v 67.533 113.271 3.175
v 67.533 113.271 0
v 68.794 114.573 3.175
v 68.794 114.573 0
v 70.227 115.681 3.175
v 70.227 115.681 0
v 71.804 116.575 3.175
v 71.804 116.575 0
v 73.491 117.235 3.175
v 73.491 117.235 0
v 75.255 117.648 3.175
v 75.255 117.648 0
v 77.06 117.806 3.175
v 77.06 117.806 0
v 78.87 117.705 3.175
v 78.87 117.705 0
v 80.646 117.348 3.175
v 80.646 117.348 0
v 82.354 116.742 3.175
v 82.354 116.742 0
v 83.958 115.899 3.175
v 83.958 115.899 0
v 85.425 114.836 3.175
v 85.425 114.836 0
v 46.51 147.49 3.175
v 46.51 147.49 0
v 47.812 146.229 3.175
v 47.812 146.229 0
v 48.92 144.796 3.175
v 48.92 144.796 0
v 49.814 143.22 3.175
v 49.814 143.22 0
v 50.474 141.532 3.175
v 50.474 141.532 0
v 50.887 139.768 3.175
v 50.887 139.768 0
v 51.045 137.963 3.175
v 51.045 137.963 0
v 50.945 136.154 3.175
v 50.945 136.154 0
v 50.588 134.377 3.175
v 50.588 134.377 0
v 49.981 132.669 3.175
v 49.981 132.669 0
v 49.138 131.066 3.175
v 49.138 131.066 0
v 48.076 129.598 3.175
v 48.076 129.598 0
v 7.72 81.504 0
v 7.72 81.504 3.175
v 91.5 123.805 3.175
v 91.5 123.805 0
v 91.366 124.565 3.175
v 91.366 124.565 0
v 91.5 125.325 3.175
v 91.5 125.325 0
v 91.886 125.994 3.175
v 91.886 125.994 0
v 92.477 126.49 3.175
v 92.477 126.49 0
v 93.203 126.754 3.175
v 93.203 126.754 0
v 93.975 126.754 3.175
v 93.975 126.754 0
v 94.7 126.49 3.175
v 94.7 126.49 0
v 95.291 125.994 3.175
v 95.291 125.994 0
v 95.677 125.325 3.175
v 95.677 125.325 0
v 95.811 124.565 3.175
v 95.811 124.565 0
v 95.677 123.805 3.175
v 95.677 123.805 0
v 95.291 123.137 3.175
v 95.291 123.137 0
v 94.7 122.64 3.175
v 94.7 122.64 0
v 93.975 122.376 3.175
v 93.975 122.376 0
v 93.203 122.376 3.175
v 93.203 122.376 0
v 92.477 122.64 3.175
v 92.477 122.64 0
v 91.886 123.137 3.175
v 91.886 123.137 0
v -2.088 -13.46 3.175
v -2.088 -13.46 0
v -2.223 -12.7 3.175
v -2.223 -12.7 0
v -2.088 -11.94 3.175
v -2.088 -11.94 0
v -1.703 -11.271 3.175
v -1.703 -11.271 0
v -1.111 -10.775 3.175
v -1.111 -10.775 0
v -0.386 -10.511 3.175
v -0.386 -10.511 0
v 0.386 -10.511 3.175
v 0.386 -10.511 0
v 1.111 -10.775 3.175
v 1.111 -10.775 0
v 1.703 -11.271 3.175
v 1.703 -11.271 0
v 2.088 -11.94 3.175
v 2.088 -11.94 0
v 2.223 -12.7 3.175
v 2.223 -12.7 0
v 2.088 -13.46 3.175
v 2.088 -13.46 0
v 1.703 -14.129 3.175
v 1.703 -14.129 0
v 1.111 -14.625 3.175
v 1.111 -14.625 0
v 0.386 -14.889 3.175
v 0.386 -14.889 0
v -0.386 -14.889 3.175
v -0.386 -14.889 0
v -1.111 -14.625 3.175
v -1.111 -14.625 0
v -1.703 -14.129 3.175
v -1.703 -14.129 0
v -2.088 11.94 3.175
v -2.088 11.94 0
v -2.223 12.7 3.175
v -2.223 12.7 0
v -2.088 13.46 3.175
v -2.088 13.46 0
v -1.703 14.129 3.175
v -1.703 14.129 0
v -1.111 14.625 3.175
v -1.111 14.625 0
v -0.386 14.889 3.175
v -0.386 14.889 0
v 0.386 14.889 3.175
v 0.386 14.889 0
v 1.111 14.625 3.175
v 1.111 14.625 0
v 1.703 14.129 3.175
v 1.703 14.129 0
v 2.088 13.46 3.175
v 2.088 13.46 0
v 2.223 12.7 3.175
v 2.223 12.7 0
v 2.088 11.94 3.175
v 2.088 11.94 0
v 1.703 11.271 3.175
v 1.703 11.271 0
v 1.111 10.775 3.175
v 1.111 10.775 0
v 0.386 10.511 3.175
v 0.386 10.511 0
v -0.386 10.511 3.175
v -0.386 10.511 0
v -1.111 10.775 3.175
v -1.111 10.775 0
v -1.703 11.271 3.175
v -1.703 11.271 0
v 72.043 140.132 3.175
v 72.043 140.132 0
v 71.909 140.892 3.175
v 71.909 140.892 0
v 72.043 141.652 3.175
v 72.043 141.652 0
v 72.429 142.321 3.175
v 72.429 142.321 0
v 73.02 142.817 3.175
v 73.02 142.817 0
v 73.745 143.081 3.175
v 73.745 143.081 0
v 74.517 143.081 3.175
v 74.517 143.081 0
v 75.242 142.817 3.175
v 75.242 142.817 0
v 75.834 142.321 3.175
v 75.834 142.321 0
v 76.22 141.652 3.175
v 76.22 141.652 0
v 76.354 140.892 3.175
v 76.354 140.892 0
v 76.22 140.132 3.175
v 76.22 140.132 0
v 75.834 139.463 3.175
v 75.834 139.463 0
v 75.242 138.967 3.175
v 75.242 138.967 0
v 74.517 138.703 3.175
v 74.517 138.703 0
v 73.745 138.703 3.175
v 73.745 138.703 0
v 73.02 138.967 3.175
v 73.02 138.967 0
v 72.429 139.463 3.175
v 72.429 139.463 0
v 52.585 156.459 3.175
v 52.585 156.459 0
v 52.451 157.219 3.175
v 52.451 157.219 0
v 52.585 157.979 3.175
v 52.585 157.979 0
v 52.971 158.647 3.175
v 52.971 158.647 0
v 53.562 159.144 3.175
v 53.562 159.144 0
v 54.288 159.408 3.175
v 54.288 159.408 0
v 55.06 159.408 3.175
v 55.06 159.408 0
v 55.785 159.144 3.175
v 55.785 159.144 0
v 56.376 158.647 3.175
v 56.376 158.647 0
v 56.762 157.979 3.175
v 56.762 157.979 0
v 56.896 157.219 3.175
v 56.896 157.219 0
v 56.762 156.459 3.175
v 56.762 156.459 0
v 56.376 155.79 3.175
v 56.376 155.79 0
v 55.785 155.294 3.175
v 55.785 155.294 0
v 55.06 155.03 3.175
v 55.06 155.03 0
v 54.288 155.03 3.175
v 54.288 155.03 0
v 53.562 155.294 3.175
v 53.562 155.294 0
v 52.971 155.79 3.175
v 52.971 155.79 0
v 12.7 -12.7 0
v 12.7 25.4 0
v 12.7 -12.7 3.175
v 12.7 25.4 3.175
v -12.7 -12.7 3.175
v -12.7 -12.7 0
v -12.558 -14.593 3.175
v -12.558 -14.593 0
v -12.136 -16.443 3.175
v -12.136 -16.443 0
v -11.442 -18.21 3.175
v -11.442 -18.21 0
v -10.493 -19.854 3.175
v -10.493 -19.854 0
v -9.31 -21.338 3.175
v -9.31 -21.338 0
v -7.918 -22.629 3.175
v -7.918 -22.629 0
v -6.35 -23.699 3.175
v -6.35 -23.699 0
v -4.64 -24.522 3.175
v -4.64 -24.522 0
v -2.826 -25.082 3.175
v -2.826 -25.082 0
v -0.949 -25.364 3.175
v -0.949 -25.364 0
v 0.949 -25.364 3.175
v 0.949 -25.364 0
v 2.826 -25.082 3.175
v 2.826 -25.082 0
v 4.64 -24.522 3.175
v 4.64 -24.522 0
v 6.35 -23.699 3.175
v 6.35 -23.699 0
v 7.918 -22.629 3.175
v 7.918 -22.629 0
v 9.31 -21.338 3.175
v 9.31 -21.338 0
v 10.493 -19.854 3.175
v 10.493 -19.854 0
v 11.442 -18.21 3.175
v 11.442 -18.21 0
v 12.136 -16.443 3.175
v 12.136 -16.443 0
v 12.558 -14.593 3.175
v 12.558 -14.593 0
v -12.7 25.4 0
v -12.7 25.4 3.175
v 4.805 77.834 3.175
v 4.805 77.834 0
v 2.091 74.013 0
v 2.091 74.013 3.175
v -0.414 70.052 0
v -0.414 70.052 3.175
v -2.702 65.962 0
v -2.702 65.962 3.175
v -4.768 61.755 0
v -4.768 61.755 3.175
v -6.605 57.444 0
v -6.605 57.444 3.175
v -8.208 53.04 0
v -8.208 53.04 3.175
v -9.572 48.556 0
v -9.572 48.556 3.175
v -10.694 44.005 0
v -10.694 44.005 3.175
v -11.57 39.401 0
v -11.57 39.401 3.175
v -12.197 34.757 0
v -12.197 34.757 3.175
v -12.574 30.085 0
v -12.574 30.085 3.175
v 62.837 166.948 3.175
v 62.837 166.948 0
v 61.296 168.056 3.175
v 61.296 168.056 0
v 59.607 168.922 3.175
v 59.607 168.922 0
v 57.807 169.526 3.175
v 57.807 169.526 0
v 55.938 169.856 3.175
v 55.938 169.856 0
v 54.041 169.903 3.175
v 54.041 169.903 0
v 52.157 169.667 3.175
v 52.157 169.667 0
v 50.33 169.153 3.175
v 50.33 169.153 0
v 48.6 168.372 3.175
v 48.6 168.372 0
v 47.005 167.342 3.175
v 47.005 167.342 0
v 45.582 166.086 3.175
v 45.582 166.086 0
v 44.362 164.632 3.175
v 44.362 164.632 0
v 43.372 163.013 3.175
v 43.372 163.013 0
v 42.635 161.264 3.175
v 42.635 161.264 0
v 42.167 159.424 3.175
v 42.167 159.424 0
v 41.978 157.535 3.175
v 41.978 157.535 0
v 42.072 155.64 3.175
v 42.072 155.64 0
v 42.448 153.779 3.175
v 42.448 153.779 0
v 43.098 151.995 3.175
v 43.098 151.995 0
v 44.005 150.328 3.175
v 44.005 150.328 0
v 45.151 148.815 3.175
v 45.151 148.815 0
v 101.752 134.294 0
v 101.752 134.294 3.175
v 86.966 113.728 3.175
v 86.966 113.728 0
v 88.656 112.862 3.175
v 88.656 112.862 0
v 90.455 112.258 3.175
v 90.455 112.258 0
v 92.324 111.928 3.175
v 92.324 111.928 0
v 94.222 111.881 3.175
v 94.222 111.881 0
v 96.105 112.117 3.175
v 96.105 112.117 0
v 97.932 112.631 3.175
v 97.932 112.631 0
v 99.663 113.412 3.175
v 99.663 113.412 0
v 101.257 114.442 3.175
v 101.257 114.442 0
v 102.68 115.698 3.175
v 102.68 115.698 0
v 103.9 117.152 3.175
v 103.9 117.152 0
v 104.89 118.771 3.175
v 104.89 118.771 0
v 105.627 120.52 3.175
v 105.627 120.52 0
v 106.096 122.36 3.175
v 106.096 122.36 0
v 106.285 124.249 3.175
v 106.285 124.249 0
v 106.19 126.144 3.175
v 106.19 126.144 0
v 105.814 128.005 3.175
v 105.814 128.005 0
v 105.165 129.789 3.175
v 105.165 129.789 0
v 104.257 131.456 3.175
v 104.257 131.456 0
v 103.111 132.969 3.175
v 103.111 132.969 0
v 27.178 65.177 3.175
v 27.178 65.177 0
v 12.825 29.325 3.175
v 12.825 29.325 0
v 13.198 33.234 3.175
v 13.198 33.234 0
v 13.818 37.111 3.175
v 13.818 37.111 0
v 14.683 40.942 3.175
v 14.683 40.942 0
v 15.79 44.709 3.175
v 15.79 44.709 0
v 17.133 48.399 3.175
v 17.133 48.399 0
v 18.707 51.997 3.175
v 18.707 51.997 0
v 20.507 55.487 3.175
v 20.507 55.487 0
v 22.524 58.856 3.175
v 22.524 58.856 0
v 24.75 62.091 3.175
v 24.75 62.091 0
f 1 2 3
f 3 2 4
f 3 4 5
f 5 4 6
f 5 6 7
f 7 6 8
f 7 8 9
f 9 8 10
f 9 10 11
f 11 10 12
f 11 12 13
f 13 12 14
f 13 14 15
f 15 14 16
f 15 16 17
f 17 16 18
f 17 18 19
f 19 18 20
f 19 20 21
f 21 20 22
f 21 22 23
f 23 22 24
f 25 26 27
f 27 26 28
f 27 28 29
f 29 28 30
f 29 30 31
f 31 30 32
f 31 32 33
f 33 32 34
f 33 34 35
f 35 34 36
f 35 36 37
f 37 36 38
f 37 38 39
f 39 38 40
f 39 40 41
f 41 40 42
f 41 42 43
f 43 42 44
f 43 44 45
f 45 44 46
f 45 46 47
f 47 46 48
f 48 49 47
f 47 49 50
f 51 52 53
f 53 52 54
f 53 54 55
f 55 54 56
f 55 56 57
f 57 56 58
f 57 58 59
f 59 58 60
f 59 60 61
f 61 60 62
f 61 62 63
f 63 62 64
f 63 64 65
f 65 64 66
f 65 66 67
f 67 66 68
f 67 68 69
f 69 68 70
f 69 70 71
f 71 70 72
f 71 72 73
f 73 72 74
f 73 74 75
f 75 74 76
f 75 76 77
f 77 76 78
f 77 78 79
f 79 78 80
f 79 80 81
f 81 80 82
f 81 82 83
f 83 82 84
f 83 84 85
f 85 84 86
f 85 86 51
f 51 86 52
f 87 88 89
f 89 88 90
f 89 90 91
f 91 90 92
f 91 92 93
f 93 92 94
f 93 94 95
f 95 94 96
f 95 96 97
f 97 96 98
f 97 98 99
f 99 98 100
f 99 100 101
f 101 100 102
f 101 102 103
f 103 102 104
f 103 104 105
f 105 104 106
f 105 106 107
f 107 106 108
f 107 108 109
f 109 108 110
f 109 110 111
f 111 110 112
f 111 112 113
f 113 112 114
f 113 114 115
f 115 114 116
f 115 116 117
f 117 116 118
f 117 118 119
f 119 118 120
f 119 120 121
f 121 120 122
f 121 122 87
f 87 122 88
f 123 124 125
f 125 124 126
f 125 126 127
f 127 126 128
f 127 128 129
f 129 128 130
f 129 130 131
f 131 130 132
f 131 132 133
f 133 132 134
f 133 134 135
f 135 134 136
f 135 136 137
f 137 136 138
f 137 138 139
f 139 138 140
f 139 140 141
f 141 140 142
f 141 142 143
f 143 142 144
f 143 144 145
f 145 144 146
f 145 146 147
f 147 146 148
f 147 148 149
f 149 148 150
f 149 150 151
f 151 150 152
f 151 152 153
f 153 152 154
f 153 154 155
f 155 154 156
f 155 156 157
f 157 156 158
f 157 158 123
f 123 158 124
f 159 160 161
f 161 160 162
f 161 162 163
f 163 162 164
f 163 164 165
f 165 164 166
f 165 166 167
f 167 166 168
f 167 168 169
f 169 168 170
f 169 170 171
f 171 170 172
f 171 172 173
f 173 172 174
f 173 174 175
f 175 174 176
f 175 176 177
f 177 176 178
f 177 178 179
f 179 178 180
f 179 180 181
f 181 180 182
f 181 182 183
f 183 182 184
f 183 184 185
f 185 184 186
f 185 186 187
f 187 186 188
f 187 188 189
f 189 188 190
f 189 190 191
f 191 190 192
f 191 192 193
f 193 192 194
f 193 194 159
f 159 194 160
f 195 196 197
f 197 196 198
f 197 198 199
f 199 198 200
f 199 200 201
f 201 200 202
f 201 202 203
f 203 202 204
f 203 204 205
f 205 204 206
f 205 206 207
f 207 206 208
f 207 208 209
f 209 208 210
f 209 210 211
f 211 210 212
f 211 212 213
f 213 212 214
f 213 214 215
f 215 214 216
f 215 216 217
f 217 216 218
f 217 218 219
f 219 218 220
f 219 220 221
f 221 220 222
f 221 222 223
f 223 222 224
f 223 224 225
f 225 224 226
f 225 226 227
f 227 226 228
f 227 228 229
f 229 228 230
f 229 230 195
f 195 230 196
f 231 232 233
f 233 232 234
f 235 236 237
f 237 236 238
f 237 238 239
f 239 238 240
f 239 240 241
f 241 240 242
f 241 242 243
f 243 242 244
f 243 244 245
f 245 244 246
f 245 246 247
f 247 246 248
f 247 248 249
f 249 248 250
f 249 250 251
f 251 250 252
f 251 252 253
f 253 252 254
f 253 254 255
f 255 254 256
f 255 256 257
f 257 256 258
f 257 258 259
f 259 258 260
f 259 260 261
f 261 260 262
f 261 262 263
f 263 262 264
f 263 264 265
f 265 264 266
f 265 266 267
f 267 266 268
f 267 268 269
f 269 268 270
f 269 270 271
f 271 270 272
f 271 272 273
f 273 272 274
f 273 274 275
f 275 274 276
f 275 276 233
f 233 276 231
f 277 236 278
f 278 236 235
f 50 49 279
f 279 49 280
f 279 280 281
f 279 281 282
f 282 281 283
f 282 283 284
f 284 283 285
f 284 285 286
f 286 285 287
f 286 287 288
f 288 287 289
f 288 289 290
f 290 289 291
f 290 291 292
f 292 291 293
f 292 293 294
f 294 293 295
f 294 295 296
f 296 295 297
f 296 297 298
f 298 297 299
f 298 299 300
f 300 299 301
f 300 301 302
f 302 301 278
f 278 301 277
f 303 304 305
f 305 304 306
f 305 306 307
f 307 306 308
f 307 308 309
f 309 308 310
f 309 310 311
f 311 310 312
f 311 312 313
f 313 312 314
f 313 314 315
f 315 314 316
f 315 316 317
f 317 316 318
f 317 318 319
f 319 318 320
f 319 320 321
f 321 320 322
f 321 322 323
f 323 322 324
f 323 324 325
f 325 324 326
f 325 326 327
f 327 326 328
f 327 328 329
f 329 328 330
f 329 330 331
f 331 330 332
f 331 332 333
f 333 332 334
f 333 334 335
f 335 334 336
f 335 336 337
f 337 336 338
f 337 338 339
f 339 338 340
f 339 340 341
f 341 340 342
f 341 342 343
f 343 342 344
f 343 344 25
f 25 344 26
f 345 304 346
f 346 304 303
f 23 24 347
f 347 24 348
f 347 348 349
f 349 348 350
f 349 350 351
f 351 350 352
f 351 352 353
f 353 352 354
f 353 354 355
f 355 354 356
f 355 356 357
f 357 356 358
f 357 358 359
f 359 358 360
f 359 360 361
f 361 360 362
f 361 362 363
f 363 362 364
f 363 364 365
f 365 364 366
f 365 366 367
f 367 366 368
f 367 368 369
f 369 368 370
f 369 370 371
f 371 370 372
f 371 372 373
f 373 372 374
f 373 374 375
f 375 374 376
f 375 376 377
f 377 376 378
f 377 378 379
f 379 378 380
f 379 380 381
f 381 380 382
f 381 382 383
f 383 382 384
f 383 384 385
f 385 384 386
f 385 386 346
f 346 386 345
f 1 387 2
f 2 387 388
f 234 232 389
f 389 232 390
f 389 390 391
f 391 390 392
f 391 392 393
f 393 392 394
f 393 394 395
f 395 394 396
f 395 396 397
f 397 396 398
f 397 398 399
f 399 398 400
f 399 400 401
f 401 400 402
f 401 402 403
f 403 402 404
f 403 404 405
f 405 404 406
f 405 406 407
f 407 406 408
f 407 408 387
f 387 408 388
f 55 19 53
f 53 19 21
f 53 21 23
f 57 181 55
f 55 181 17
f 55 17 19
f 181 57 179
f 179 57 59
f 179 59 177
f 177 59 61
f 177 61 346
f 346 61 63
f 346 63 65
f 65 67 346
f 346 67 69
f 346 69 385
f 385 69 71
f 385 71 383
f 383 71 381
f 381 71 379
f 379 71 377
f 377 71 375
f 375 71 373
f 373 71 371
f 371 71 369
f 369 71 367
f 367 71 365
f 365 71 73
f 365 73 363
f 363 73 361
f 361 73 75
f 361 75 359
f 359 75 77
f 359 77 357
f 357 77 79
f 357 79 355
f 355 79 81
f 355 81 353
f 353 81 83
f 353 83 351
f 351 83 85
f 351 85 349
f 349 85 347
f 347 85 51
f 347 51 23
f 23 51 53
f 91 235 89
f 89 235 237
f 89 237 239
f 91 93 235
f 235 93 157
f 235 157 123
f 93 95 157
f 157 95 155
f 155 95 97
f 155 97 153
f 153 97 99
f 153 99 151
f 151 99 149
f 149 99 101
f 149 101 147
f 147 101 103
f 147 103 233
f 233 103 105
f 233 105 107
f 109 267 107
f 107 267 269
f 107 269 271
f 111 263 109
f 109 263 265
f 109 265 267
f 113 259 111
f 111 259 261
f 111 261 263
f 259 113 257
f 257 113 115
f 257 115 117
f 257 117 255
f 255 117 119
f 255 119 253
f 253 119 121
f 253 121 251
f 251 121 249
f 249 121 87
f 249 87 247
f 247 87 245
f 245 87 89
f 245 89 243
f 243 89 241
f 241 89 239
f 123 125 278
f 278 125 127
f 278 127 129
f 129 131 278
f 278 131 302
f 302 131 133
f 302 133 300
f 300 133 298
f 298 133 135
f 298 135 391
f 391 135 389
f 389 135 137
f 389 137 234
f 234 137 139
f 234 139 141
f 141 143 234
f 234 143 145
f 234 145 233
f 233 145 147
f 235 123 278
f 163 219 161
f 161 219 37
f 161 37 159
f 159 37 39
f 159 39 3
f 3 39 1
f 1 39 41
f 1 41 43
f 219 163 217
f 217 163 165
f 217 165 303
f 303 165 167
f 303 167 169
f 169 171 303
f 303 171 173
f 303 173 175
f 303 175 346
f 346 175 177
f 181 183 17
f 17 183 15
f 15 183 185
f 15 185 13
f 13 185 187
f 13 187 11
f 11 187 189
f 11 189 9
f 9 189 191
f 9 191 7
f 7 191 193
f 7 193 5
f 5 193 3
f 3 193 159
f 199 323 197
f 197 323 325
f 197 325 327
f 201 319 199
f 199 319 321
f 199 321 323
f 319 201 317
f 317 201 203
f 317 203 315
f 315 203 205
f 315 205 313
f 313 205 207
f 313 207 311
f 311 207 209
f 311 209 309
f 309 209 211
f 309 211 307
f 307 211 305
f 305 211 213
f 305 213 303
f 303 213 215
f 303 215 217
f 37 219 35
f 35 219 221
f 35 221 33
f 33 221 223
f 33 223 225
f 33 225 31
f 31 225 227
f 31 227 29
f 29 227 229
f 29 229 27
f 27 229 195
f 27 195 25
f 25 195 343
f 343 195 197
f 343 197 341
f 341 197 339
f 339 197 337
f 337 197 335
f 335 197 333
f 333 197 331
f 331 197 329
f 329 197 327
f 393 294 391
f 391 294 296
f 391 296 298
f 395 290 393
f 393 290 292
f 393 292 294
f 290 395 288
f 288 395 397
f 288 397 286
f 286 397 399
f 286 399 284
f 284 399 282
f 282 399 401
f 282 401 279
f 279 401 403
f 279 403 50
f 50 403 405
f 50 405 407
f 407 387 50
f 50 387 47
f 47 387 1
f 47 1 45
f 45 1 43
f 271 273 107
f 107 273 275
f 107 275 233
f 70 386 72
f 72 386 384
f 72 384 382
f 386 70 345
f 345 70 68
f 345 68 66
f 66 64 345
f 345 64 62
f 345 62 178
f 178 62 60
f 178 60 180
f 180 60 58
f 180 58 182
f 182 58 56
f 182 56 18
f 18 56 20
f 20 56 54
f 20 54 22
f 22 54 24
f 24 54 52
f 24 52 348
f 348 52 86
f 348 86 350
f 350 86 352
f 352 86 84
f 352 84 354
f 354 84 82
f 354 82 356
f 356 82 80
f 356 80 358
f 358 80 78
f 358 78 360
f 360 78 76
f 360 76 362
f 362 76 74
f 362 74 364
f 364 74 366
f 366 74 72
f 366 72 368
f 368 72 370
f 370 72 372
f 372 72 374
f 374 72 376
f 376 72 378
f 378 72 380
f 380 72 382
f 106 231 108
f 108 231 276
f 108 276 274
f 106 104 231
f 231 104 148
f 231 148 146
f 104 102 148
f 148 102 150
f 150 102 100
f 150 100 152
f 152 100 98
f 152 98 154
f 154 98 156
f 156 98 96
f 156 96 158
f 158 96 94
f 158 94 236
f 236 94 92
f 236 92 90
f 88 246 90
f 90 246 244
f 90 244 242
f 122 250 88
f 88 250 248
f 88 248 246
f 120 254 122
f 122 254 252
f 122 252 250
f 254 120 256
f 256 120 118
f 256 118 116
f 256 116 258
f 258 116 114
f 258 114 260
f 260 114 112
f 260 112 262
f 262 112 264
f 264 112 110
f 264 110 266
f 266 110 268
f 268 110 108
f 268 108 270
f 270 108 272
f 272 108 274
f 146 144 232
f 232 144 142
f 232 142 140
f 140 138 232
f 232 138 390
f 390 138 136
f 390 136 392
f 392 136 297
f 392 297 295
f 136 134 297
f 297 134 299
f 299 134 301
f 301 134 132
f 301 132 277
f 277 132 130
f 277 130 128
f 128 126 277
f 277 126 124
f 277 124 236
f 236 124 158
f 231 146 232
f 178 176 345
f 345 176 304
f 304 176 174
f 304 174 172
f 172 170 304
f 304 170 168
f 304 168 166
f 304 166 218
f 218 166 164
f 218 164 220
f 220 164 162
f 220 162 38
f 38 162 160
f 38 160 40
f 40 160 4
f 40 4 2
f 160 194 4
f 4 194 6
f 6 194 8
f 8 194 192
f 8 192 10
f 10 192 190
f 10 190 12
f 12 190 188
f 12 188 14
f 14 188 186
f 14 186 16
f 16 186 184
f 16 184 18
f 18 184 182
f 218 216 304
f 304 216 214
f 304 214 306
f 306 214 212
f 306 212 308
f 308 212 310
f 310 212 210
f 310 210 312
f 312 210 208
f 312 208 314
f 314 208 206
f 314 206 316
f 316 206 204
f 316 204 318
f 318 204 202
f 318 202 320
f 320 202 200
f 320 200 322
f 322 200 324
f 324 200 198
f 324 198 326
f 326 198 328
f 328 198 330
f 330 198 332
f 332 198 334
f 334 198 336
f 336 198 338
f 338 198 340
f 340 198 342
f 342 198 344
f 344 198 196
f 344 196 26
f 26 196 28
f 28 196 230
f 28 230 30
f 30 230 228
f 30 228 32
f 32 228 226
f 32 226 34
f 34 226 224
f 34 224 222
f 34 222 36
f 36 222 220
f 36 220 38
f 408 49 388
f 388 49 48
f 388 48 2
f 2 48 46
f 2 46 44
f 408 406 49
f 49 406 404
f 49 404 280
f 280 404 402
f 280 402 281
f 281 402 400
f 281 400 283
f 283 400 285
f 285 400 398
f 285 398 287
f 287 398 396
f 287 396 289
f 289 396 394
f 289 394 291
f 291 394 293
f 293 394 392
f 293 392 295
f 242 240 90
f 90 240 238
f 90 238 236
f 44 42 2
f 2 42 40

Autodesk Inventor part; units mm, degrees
ref_plane "YZ Plane" through (0, 0, 0) normal (1, 0, 0) x (0, 1, 0)
ref_plane "XZ Plane" through (0, 0, 0) normal (0, 1, 0) x (-1, 0, 0)
ref_plane "XY Plane" through (0, 0, 0) normal (0, 0, 1) x (1, 0, 0)
sketch "Sketch1" plane through (0, 0, 0) normal (0, 0, 1) x (1, 0, 0)
  line L0 (-12.7, 25.4) -> (12.7, 25.4)
  line L1 (12.7, 25.4) -> (12.7, -25.4)
  line L2 (12.7, -25.4) -> (-12.7, -25.4)
  line L3 (-12.7, -25.4) -> (-12.7, 25.4)
  line L4 (-12.7, 25.4) -> (12.7, -25.4) construction
  line L5 (12.7, 25.4) -> (-12.7, -25.4) construction
  line L6 (72.5658, 158.7842) -> (111.4809, 126.1305)
  line L7 (111.4809, 126.1305) -> (95.1541, 106.673)
  line L8 (95.1541, 106.673) -> (56.239, 139.3266)
  line L9 (56.239, 139.3266) -> (72.5658, 158.7842)
  line L10 (72.5658, 158.7842) -> (95.1541, 106.673) construction
  line L11 (111.4809, 126.1305) -> (56.239, 139.3266) construction
  line L12 (74.1312, 140.892) -> (93.5887, 124.5652) construction
  line L13 (0, -12.7) -> (0, 12.7) construction
  line L14 (-12.7, -25.4) -> (12.7, -25.4)
  line L15 (12.7, -25.4) -> (12.7, -50.8)
  line L16 (12.7, -50.8) -> (-12.7, -50.8)
  line L17 (-12.7, -50.8) -> (-12.7, -25.4)
  circle A0 centre (0, -38.1) radius 12.7
  line L18 (75.6966, 122.9998) -> (56.239, 139.3266)
  line L19 (56.239, 139.3266) -> (-17.8482, 51.033)
  line L20 (-17.8482, 51.033) -> (1.6094, 34.7061)
  line L21 (1.6094, 34.7061) -> (75.6966, 122.9998)
  line L22 (72.5658, 158.7842) -> (56.239, 139.3266)
  line L23 (56.239, 139.3266) -> (36.7815, 155.6534)
  line L24 (36.7815, 155.6534) -> (53.1083, 175.111)
  line L25 (53.1083, 175.111) -> (72.5658, 158.7842)
  line L26 (54.6737, 157.2188) -> (74.1312, 140.892) construction
  arc A1 (62.8371, 166.9476) -> (46.5103, 147.49) centre (54.6737, 157.2188) ccw
  circle A2 centre (93.5887, 124.5652) radius 12.7
  line L27 (192.4417, 25.039) -> (17.324, 171.9802)
  circle A3 centre (0, -12.7) radius 12.7
  arc A4 (7.7203, 81.5042) -> (-12.7, 25.4) centre (74.5827, 25.4) ccw
  arc A5 (27.1778, 65.1774) -> (12.7, 25.4) centre (74.5827, 25.4) ccw
  point P0 (0, 0)
  point P1 (0, 0)
  point P2 (0, 0)
  point P3 (83.86, 132.7286)
  point P4 (83.86, 132.7286)
  point P5 (-12.7, -38.1)
  point P6 (12.7, -38.1)
  point P7 (-12.7, -4.4935)
  point P8 (12.7, -4.4935)
  point P9 (75.6966, 122.9998)
  point P10 (85.4253, 114.8364)
  point P11 (101.7521, 134.294)
  point P12 (-12.7, -12.7)
  point P13 (12.7, -12.7)
  dimension "d0" = 25.4
  dimension "d1" = 50.8
  dimension "d2" = 25.4
  dimension "d3" = 12.7
  dimension "d17" = 127
extrude "Extrusion1" add sketch "Sketch1" along normal blind 3.175 contours A4 L20 L21 A5 L0 | L0 L1 A3 L3 | A3 | A4 L19 L8 L21 L20 | L8 L9 L6 A2 | L23 A1 L25 L9 | A2
hole "Hole1" at (0, -12.7, 0) at (0, 12.7, 0) at (93.5887, 124.5652, 0) at (74.1312, 140.892, 0) at (0, -38.1, 0) at (54.6737, 157.2188, 0) direction (0, 0, 1) diameter 4.445 end through all
fillet "Fillet1" radius 12.7 2 edges at (56.239, 139.3266, 1.5875) (75.6966, 122.9998, 1.5875)
equation "\"d3\" = 0.5 * d2"
properties part number "Hood Upper Bracket" material "PET Plastic"
